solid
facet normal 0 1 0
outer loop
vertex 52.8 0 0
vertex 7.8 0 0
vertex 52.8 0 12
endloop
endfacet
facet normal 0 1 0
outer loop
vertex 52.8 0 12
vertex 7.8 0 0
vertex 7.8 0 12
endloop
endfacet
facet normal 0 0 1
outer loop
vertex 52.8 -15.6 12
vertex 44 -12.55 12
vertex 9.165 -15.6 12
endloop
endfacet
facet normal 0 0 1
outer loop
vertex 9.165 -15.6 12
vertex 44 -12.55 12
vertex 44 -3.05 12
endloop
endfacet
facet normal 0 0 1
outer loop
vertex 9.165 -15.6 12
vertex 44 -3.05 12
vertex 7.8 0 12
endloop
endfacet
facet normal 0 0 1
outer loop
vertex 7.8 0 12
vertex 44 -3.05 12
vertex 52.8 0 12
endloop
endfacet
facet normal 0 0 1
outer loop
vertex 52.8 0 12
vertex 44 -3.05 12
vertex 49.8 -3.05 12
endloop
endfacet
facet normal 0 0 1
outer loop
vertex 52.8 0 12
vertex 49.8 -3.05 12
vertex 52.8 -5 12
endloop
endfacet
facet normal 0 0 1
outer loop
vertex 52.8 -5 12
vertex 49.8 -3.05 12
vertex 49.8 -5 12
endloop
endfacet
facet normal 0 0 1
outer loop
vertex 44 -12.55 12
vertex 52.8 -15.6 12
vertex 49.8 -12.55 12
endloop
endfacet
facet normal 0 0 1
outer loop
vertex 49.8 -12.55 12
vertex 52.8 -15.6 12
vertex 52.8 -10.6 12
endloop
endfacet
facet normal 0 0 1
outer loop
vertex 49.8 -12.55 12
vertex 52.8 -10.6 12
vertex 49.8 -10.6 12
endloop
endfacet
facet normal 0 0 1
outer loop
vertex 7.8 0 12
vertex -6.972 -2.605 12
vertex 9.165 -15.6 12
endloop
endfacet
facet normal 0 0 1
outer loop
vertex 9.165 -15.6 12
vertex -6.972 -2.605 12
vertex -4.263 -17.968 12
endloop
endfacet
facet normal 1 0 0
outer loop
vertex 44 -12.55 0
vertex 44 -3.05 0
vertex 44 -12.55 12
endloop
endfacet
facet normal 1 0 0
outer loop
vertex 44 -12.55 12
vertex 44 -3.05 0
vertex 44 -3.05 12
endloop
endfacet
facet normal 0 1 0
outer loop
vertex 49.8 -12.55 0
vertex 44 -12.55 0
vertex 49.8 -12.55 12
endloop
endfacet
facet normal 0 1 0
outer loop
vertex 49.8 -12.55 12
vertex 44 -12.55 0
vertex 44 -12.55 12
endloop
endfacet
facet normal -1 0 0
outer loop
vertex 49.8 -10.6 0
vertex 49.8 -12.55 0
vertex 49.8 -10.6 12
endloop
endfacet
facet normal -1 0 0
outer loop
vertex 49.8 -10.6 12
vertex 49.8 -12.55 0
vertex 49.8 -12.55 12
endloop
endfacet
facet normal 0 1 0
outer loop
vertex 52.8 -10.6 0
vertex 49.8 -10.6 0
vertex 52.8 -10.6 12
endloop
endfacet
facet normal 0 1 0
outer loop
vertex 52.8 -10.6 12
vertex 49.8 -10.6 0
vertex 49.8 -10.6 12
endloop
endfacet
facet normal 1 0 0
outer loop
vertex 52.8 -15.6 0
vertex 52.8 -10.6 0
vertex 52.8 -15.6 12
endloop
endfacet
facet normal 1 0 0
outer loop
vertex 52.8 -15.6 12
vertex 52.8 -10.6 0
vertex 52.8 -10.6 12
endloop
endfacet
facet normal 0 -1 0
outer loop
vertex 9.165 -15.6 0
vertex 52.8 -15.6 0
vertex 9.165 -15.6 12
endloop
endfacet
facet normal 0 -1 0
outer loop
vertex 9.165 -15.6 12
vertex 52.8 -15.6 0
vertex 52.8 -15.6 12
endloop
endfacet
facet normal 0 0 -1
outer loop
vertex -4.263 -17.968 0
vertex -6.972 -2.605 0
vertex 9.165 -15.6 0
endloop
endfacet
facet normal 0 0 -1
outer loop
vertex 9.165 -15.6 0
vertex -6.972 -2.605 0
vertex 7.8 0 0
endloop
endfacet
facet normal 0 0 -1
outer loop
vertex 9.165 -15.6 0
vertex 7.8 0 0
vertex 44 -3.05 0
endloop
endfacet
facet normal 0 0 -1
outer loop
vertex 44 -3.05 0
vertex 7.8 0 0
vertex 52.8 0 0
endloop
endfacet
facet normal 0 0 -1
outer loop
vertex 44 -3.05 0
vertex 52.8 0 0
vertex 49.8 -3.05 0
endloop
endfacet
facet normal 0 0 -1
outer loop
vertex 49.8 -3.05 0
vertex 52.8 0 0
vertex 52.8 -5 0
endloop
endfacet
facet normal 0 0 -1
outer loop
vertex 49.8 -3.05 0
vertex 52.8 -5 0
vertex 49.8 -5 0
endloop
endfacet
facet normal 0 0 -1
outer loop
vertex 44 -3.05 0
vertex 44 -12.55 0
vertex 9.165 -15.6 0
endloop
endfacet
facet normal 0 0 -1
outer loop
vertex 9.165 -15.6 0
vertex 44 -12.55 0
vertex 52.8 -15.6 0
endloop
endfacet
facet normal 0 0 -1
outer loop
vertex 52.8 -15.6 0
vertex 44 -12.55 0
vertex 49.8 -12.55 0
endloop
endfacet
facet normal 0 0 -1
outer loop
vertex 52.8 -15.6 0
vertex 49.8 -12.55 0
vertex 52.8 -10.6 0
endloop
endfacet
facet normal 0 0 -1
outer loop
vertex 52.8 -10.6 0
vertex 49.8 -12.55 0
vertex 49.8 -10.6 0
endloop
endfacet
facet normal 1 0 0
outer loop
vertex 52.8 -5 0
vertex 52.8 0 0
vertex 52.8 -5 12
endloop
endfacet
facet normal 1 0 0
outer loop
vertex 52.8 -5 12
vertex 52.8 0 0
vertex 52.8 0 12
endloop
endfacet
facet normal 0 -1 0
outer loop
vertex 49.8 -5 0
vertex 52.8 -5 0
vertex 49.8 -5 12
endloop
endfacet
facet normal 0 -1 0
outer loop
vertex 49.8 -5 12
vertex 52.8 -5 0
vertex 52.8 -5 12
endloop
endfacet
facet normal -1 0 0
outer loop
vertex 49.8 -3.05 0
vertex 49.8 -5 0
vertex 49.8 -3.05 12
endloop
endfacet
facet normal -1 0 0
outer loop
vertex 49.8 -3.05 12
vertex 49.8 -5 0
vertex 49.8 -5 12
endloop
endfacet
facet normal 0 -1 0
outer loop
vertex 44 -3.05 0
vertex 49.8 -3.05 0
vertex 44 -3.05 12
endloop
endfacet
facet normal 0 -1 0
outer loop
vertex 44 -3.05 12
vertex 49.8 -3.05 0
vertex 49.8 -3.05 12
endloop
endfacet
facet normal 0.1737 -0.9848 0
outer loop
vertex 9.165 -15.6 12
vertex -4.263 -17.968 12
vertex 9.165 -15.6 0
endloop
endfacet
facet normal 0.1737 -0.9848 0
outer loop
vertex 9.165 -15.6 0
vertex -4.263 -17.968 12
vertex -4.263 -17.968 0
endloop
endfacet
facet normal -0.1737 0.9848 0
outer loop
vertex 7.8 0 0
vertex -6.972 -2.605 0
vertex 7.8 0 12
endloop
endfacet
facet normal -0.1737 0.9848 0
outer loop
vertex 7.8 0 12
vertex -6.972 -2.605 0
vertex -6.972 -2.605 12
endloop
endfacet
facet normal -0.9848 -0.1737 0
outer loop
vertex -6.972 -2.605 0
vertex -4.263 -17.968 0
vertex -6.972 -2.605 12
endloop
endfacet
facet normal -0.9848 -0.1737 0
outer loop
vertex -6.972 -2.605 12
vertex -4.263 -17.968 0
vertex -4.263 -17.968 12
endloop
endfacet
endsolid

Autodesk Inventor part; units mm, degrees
ref_plane "YZ Plane" through (0, 0, 0) normal (1, 0, 0) x (0, 1, 0)
ref_plane "XZ Plane" through (0, 0, 0) normal (0, 1, 0) x (-1, 0, 0)
ref_plane "XY Plane" through (0, 0, 0) normal (0, 0, 1) x (1, 0, 0)
sketch "Sketch5" plane through (0, 0, 0) normal (0, 0, 1) x (1, 0, 0)
  line L0 (52.8, -15.6) -> (52.8, -10.6)
  line L1 (52.8, -10.6) -> (49.8, -10.6)
  line L2 (49.8, -10.6) -> (49.8, -12.55)
  line L3 (44, -12.55) -> (44, -3.05)
  line L4 (49.8, -3.05) -> (49.8, -5)
  line L5 (49.8, -5) -> (52.8, -5)
  line L6 (52.8, -5) -> (52.8, 0)
  line L7 (52.8, 0) -> (7.8, 0)
  line L8 (44, -3.05) -> (49.8, -3.05)
  line L9 (44, -12.55) -> (49.8, -12.55)
  line L10 (52.8, -15.6) -> (7.8, -15.6)
  arc A0 (7.8, 0) -> (7.8, -15.6) centre (7.8, -7.8) ccw
  point P0 (0, 0)
  dimension "d41" = 5.8
  dimension "d48" = 44
  dimension "d50" = 3
  dimension "d63" = 45
  dimension "d67" = 15.6
  dimension "d71" = 0
  dimension "d72" = 36.2
  dimension "d80" = 5.6
  dimension "d81" = 9.5
extrude "Extrusion2" add sketch "Sketch5" along normal blind 12
sketch "Sketch7" plane through (0, 0, 12) normal (0, 0, 1) x (1, 0, 0)
  line L0 (52.8, 0) -> (7.8, 0) projected
  line L1 (7.8, 0) -> (0, 0)
  line L2 (0, 0) -> (0, -15.6)
  line L3 (0, -15.6) -> (7.8, -15.6)
  line L4 (7.8, -15.6) -> (7.8, 0)
  point P0 (0, 0)
extrude "Extrusion4" cut sketch "Sketch7" against normal through all
sketch "Sketch9" plane through (0, 0, 12) normal (0, 0, 1) x (1, 0, 0)
  line L0 (52.8, 0) -> (7.8, 0) projected
  line L1 (7.8, 0) -> (-6.9721, -2.6047)
  line L2 (-6.9721, -2.6047) -> (-4.2632, -17.9677)
  line L3 (-4.2632, -17.9677) -> (10.5089, -15.363)
  line L4 (7.8, 0) -> (10.5089, -15.363)
  line L5 (7.8, 0) -> (7.8, -15.6) projected
  point P0 (0, 0)
  dimension "d83" = 15.6
  dimension "d84" = 10
  dimension "d85" = 90
  dimension "d86" = 10
  dimension "d87" = 15
extrude "Extrusion5" add sketch "Sketch9" against normal up to surface (12 mm away)
equation "\"l1\" = 8"
properties part number "Finray_test_8_Flach_winkel10deg"
